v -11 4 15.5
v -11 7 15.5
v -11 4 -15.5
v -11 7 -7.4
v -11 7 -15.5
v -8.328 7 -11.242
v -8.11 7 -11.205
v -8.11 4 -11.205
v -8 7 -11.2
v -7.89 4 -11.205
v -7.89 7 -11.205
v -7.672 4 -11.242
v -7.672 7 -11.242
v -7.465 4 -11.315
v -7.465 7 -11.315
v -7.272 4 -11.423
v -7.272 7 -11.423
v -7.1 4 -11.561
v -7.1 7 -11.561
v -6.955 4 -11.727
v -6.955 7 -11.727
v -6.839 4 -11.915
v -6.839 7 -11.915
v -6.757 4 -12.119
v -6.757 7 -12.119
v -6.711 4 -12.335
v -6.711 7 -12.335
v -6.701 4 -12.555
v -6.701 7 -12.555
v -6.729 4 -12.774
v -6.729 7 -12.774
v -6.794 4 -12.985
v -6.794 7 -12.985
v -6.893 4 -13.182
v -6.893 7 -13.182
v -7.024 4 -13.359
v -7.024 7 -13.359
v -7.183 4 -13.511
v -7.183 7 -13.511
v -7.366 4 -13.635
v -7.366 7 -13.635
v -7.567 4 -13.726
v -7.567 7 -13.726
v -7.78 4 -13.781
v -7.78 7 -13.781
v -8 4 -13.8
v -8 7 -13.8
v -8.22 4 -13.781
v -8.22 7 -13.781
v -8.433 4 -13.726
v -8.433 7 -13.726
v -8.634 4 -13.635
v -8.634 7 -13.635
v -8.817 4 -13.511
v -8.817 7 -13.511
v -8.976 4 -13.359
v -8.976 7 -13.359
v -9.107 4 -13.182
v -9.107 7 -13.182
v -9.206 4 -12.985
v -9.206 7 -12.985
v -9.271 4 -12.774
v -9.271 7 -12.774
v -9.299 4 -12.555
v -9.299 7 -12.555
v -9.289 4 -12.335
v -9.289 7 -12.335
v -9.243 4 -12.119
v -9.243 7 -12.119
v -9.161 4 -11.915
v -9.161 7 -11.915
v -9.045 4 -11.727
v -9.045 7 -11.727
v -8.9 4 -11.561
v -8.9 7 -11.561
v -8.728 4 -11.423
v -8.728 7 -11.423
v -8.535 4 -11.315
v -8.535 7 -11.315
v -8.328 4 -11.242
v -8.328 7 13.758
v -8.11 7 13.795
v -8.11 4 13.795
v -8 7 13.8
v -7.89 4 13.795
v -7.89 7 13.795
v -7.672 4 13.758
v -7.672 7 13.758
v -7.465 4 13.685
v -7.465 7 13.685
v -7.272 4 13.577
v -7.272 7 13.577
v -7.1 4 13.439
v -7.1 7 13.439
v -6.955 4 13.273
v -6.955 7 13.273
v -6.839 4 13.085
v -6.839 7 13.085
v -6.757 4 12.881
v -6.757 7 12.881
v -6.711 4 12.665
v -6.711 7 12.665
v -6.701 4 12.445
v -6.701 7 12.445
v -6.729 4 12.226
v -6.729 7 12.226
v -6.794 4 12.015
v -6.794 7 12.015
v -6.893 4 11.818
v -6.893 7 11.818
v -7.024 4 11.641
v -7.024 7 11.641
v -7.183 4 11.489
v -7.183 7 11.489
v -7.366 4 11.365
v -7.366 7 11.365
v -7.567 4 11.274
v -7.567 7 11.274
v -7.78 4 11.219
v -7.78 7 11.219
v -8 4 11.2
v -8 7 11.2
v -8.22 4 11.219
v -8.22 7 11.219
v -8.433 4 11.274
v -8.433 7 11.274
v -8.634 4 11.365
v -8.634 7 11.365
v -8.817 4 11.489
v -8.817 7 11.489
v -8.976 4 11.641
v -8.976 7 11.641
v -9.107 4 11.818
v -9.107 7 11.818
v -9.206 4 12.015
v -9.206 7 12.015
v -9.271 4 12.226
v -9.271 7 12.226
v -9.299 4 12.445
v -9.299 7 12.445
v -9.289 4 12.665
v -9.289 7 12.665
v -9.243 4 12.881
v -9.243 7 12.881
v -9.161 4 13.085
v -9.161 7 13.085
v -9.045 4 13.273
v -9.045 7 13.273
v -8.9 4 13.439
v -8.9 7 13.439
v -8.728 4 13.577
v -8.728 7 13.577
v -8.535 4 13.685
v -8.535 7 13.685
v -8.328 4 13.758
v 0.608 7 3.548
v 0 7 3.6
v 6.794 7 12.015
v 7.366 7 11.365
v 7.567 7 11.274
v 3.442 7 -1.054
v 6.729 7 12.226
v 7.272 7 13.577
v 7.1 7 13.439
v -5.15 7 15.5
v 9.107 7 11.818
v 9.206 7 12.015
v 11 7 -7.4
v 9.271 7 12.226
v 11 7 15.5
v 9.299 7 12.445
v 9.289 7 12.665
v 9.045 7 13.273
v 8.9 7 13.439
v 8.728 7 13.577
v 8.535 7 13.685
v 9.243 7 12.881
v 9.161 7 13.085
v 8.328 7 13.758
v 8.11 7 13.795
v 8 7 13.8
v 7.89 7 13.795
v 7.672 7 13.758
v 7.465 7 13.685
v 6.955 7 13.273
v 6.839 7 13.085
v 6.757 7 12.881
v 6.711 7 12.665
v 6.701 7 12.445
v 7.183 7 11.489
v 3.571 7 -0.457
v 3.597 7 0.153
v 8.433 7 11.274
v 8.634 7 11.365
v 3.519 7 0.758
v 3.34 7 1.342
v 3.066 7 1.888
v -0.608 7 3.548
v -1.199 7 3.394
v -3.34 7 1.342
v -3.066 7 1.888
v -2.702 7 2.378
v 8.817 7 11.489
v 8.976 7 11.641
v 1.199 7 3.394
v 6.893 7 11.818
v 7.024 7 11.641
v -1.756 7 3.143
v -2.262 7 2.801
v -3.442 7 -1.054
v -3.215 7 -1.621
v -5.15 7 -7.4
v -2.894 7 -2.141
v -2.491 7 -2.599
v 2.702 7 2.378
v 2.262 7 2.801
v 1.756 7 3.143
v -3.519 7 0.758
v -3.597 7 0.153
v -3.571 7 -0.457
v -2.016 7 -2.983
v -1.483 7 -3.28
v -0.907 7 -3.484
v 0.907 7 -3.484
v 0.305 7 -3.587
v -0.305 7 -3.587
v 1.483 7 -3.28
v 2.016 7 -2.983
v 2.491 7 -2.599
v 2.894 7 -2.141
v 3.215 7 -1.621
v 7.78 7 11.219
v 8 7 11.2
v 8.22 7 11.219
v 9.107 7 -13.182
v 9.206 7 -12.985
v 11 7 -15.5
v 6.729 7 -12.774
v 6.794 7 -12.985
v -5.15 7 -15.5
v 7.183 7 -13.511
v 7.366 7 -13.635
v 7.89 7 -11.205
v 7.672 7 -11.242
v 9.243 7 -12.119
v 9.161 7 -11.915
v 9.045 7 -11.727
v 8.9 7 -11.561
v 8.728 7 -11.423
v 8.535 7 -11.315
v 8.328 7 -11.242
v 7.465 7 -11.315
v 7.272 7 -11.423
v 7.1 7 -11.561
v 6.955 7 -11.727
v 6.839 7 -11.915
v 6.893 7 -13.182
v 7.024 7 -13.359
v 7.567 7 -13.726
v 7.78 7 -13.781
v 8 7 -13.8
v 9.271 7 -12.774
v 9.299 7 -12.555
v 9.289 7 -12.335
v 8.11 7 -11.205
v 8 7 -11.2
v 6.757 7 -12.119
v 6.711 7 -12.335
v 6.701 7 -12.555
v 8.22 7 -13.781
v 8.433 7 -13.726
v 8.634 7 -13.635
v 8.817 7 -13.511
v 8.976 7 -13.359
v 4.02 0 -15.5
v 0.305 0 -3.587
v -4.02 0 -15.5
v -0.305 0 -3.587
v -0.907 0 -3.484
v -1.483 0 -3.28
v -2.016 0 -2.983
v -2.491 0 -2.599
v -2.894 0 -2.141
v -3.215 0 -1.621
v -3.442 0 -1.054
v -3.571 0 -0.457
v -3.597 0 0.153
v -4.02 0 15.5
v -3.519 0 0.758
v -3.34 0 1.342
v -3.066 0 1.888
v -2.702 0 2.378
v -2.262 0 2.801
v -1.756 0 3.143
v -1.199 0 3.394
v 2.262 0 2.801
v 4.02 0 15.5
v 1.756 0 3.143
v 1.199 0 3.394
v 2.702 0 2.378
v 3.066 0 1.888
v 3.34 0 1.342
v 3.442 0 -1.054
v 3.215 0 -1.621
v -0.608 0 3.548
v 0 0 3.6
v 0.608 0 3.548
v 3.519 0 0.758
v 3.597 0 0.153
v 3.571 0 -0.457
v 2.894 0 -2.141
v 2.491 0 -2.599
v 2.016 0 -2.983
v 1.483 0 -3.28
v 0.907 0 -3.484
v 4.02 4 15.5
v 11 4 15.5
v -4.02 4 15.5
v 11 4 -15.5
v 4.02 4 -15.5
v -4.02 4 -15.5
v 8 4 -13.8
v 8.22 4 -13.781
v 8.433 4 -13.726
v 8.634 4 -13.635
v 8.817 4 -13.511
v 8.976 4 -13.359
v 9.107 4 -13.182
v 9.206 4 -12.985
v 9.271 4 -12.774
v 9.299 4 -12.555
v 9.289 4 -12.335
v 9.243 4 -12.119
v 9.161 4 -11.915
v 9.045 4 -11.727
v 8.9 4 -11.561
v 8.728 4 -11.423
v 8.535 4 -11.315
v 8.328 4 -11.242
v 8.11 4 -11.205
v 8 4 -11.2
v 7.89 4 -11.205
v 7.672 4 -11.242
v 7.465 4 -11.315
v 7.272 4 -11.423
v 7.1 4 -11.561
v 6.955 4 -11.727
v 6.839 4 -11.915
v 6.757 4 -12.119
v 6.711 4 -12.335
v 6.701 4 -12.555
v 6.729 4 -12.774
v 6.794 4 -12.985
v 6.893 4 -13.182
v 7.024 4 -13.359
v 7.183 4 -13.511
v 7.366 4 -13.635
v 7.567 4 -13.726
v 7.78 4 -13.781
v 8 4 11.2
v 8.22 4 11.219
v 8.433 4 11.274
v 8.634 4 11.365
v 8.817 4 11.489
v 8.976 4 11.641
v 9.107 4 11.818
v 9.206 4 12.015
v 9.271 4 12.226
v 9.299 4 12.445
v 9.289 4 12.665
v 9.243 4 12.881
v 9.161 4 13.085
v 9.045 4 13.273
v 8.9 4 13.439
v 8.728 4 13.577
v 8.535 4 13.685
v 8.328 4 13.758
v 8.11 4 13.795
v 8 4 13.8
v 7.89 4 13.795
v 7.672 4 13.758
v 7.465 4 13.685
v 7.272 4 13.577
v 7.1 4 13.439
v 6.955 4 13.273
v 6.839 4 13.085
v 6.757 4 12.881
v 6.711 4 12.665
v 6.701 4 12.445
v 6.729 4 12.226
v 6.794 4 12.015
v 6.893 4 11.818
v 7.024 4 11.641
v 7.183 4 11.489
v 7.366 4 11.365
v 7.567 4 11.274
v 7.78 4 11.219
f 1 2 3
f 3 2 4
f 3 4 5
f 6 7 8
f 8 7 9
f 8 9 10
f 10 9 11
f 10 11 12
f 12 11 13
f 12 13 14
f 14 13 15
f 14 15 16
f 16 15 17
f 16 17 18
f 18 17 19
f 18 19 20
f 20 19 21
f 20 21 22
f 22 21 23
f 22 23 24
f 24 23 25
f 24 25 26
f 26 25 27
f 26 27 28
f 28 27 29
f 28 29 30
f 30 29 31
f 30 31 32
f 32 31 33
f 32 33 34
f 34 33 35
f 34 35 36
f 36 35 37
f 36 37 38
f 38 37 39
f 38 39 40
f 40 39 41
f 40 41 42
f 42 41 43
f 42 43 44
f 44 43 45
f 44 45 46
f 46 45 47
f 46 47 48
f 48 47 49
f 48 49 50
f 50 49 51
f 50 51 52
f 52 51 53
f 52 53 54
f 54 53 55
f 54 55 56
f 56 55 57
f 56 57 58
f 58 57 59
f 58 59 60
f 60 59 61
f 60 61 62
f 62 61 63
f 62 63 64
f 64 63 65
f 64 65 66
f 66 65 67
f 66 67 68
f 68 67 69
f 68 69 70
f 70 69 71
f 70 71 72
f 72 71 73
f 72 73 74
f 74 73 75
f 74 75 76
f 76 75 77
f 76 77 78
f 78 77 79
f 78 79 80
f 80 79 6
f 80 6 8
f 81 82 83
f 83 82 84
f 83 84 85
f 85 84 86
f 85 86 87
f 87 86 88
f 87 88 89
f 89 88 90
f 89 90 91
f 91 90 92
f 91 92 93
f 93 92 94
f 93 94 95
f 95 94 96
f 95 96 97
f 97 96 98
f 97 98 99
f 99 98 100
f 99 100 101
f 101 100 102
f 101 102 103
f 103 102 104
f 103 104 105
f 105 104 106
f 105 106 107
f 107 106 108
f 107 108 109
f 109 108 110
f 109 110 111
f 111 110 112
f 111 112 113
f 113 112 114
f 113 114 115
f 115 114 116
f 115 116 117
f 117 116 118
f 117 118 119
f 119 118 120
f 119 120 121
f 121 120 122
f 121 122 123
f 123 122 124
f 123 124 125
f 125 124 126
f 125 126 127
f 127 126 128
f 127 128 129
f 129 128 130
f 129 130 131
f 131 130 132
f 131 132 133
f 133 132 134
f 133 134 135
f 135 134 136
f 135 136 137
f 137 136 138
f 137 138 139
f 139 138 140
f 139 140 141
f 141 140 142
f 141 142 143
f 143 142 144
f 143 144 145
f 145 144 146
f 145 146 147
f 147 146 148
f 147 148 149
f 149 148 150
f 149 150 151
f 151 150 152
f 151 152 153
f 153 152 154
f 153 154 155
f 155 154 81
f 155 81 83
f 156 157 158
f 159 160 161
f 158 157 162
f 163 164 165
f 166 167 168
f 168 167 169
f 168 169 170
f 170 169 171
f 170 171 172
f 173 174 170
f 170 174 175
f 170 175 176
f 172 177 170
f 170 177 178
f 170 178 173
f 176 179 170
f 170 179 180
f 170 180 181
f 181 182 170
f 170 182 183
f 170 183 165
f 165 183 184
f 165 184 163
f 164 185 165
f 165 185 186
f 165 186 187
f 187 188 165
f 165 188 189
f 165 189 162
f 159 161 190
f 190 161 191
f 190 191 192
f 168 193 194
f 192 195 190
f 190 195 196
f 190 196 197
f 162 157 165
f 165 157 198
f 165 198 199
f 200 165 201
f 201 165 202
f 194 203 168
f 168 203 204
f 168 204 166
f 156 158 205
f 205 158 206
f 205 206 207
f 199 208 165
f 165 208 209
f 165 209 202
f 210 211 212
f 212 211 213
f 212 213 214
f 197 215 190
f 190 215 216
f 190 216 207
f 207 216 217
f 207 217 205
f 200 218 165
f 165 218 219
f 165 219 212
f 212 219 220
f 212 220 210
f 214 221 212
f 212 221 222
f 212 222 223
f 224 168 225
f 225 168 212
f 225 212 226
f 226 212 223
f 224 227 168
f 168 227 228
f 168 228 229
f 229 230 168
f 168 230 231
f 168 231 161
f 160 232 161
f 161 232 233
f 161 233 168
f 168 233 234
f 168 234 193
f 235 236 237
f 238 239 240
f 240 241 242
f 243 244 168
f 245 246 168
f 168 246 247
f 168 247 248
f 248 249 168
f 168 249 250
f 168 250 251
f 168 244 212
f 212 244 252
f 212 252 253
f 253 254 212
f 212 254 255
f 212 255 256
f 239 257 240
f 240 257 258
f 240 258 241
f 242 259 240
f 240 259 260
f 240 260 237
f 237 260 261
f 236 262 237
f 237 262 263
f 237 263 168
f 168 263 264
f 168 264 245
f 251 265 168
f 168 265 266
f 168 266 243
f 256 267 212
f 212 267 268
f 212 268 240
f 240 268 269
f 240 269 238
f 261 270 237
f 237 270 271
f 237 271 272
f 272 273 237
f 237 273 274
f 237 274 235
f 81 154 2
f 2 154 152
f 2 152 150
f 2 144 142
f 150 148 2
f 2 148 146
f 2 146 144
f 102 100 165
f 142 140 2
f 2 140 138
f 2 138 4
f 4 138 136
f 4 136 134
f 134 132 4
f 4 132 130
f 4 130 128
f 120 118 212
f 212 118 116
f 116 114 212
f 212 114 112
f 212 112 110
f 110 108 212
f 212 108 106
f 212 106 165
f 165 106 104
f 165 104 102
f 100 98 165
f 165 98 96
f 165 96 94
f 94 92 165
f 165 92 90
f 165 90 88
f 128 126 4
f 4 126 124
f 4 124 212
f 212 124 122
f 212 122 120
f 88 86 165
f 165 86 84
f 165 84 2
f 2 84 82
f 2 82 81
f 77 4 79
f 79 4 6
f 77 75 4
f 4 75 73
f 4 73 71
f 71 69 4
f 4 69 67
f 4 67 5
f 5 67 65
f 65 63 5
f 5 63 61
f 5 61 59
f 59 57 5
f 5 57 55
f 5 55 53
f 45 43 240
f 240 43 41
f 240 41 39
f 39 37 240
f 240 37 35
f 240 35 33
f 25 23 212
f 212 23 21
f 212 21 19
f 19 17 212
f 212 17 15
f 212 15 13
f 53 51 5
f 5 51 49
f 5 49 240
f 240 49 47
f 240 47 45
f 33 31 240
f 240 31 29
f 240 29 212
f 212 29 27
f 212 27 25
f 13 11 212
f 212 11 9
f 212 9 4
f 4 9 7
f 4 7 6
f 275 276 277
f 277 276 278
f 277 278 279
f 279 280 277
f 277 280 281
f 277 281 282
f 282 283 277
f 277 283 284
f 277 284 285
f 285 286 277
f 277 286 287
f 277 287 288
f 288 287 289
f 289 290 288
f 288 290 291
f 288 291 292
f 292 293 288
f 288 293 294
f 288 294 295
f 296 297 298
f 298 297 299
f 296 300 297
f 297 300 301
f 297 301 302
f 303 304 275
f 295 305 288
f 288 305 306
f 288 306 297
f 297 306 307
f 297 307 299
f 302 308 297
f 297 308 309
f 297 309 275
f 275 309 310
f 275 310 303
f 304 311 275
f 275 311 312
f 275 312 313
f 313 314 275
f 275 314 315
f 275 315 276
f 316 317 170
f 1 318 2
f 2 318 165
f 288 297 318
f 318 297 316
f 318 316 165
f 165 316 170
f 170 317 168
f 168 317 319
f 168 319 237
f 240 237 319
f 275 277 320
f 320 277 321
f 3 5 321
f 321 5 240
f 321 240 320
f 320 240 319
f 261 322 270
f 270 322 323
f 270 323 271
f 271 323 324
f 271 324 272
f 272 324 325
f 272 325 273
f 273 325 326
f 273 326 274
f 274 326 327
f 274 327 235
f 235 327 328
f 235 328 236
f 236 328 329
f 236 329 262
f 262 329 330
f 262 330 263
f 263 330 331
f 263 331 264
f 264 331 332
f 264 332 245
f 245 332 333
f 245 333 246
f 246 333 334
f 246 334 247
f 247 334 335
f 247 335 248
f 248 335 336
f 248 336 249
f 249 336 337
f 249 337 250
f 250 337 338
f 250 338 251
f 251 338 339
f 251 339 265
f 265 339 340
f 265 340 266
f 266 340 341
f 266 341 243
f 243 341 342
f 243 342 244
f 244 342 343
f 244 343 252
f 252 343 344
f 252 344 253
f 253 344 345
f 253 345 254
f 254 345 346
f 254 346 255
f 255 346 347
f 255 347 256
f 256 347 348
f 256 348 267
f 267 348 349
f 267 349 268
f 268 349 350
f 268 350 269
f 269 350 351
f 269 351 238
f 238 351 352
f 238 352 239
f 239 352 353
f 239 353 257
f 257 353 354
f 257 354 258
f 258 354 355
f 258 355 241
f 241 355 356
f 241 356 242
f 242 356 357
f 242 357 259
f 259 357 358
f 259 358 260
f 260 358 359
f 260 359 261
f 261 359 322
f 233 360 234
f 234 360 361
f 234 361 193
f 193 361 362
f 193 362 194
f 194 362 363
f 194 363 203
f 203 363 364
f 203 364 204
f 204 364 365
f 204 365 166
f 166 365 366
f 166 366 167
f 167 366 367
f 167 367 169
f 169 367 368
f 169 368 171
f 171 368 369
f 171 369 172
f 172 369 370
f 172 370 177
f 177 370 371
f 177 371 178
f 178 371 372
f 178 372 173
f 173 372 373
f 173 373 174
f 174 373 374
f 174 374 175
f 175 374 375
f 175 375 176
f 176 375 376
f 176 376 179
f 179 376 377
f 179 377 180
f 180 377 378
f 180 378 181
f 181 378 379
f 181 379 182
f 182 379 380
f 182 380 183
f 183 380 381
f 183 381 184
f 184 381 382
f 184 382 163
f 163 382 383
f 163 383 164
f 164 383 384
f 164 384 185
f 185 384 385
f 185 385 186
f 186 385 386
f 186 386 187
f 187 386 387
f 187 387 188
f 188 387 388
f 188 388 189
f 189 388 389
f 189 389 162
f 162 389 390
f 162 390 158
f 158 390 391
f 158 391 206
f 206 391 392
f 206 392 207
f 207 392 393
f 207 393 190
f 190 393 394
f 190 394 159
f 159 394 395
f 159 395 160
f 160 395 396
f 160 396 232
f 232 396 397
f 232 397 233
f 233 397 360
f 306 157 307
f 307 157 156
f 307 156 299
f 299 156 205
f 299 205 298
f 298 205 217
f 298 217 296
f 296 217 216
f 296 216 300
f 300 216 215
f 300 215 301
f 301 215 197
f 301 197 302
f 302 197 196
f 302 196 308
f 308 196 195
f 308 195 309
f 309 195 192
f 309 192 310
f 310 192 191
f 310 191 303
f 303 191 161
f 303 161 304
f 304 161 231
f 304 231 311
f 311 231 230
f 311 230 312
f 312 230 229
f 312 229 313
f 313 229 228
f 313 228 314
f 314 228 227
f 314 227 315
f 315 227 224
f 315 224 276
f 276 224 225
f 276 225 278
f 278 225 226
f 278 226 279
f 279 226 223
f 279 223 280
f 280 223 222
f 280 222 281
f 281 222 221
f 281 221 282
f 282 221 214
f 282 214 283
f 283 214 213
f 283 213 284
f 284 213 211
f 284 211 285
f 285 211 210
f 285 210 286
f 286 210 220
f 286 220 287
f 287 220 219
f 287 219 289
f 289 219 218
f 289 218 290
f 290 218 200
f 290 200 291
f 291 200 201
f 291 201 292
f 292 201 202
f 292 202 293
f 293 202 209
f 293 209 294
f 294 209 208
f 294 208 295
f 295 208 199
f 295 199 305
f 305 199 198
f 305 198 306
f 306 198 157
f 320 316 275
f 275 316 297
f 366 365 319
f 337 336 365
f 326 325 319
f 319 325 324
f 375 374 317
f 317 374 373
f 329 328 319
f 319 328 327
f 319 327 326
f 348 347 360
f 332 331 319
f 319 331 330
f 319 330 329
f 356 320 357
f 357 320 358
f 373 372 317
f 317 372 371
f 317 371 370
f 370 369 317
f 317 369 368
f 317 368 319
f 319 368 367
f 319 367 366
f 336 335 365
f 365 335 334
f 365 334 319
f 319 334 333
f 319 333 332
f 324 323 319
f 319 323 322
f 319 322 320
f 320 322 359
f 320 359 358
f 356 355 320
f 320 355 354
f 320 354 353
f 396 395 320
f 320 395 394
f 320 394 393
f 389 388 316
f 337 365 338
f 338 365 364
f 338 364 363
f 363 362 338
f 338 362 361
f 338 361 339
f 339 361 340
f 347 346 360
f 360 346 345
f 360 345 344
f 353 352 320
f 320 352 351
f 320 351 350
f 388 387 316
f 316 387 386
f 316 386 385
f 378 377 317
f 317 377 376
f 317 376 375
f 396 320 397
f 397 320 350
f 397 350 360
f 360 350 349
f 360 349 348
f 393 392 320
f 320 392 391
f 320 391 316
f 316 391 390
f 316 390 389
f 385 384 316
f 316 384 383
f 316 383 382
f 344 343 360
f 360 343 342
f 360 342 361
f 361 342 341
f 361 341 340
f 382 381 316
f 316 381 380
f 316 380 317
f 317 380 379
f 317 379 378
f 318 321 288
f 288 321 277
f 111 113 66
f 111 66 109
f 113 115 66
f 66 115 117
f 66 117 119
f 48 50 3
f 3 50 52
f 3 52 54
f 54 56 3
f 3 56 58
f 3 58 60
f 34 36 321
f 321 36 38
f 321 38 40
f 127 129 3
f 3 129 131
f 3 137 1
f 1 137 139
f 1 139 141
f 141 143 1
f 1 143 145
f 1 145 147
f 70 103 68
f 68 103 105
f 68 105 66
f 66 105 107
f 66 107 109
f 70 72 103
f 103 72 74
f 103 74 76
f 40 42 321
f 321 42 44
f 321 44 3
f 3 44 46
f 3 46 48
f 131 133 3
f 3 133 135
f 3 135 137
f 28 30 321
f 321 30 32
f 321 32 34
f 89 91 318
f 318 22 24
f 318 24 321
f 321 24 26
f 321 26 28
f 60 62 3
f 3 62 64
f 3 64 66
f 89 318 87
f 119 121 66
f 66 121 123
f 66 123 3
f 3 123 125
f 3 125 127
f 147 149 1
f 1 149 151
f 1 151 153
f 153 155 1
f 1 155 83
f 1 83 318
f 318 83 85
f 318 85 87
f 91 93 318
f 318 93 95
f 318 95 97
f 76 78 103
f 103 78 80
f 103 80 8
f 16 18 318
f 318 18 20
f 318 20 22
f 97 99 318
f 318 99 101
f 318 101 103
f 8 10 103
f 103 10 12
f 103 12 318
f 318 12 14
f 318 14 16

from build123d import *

# Parameters (mm, degrees)
SKETCH1_W           = 22
SKETCH1_H           = 31
SKETCH1_R           = 1.3
BOSS_EXTRUDE1_DEPTH = 7
SKETCH2_R           = 3.6
CUT_EXTRUDE1_DEPTH  = 10
SKETCH4_W           = 6.98
SKETCH4_H           = 31
CUT_EXTRUDE2_DEPTH  = 4


with BuildPart() as part:
    # Sketch1 → Boss-Extrude1 (new body)
    with BuildSketch(Plane(origin=(0, 0, 0), x_dir=(1, 0, 0), z_dir=(0, 1, 0))):
        Rectangle(SKETCH1_W, SKETCH1_H)
        with Locations((-8, 12.5)):
            Circle(SKETCH1_R, mode=Mode.SUBTRACT)
        with Locations((8, 12.5)):
            Circle(SKETCH1_R, mode=Mode.SUBTRACT)
        with Locations((-8, -12.5)):
            Circle(SKETCH1_R, mode=Mode.SUBTRACT)
        with Locations((8, -12.5)):
            Circle(SKETCH1_R, mode=Mode.SUBTRACT)
    extrude(amount=BOSS_EXTRUDE1_DEPTH)

    # Sketch2 → Cut-Extrude1 (cut)
    with BuildSketch(Plane(origin=(0, 7, 0), x_dir=(1, 0, 0), z_dir=(0, 1, 0))):
        Circle(SKETCH2_R)
    extrude(amount=-CUT_EXTRUDE1_DEPTH, mode=Mode.SUBTRACT)

    # Sketch4 → Cut-Extrude2 (cut)
    with BuildSketch(Plane.XZ):
        with Locations((7.51, 0)):
            Rectangle(SKETCH4_W, SKETCH4_H)
        with Locations((-7.51, 0)):
            Rectangle(SKETCH4_W, SKETCH4_H)
    extrude(amount=-CUT_EXTRUDE2_DEPTH, mode=Mode.SUBTRACT)


solid = part.part
